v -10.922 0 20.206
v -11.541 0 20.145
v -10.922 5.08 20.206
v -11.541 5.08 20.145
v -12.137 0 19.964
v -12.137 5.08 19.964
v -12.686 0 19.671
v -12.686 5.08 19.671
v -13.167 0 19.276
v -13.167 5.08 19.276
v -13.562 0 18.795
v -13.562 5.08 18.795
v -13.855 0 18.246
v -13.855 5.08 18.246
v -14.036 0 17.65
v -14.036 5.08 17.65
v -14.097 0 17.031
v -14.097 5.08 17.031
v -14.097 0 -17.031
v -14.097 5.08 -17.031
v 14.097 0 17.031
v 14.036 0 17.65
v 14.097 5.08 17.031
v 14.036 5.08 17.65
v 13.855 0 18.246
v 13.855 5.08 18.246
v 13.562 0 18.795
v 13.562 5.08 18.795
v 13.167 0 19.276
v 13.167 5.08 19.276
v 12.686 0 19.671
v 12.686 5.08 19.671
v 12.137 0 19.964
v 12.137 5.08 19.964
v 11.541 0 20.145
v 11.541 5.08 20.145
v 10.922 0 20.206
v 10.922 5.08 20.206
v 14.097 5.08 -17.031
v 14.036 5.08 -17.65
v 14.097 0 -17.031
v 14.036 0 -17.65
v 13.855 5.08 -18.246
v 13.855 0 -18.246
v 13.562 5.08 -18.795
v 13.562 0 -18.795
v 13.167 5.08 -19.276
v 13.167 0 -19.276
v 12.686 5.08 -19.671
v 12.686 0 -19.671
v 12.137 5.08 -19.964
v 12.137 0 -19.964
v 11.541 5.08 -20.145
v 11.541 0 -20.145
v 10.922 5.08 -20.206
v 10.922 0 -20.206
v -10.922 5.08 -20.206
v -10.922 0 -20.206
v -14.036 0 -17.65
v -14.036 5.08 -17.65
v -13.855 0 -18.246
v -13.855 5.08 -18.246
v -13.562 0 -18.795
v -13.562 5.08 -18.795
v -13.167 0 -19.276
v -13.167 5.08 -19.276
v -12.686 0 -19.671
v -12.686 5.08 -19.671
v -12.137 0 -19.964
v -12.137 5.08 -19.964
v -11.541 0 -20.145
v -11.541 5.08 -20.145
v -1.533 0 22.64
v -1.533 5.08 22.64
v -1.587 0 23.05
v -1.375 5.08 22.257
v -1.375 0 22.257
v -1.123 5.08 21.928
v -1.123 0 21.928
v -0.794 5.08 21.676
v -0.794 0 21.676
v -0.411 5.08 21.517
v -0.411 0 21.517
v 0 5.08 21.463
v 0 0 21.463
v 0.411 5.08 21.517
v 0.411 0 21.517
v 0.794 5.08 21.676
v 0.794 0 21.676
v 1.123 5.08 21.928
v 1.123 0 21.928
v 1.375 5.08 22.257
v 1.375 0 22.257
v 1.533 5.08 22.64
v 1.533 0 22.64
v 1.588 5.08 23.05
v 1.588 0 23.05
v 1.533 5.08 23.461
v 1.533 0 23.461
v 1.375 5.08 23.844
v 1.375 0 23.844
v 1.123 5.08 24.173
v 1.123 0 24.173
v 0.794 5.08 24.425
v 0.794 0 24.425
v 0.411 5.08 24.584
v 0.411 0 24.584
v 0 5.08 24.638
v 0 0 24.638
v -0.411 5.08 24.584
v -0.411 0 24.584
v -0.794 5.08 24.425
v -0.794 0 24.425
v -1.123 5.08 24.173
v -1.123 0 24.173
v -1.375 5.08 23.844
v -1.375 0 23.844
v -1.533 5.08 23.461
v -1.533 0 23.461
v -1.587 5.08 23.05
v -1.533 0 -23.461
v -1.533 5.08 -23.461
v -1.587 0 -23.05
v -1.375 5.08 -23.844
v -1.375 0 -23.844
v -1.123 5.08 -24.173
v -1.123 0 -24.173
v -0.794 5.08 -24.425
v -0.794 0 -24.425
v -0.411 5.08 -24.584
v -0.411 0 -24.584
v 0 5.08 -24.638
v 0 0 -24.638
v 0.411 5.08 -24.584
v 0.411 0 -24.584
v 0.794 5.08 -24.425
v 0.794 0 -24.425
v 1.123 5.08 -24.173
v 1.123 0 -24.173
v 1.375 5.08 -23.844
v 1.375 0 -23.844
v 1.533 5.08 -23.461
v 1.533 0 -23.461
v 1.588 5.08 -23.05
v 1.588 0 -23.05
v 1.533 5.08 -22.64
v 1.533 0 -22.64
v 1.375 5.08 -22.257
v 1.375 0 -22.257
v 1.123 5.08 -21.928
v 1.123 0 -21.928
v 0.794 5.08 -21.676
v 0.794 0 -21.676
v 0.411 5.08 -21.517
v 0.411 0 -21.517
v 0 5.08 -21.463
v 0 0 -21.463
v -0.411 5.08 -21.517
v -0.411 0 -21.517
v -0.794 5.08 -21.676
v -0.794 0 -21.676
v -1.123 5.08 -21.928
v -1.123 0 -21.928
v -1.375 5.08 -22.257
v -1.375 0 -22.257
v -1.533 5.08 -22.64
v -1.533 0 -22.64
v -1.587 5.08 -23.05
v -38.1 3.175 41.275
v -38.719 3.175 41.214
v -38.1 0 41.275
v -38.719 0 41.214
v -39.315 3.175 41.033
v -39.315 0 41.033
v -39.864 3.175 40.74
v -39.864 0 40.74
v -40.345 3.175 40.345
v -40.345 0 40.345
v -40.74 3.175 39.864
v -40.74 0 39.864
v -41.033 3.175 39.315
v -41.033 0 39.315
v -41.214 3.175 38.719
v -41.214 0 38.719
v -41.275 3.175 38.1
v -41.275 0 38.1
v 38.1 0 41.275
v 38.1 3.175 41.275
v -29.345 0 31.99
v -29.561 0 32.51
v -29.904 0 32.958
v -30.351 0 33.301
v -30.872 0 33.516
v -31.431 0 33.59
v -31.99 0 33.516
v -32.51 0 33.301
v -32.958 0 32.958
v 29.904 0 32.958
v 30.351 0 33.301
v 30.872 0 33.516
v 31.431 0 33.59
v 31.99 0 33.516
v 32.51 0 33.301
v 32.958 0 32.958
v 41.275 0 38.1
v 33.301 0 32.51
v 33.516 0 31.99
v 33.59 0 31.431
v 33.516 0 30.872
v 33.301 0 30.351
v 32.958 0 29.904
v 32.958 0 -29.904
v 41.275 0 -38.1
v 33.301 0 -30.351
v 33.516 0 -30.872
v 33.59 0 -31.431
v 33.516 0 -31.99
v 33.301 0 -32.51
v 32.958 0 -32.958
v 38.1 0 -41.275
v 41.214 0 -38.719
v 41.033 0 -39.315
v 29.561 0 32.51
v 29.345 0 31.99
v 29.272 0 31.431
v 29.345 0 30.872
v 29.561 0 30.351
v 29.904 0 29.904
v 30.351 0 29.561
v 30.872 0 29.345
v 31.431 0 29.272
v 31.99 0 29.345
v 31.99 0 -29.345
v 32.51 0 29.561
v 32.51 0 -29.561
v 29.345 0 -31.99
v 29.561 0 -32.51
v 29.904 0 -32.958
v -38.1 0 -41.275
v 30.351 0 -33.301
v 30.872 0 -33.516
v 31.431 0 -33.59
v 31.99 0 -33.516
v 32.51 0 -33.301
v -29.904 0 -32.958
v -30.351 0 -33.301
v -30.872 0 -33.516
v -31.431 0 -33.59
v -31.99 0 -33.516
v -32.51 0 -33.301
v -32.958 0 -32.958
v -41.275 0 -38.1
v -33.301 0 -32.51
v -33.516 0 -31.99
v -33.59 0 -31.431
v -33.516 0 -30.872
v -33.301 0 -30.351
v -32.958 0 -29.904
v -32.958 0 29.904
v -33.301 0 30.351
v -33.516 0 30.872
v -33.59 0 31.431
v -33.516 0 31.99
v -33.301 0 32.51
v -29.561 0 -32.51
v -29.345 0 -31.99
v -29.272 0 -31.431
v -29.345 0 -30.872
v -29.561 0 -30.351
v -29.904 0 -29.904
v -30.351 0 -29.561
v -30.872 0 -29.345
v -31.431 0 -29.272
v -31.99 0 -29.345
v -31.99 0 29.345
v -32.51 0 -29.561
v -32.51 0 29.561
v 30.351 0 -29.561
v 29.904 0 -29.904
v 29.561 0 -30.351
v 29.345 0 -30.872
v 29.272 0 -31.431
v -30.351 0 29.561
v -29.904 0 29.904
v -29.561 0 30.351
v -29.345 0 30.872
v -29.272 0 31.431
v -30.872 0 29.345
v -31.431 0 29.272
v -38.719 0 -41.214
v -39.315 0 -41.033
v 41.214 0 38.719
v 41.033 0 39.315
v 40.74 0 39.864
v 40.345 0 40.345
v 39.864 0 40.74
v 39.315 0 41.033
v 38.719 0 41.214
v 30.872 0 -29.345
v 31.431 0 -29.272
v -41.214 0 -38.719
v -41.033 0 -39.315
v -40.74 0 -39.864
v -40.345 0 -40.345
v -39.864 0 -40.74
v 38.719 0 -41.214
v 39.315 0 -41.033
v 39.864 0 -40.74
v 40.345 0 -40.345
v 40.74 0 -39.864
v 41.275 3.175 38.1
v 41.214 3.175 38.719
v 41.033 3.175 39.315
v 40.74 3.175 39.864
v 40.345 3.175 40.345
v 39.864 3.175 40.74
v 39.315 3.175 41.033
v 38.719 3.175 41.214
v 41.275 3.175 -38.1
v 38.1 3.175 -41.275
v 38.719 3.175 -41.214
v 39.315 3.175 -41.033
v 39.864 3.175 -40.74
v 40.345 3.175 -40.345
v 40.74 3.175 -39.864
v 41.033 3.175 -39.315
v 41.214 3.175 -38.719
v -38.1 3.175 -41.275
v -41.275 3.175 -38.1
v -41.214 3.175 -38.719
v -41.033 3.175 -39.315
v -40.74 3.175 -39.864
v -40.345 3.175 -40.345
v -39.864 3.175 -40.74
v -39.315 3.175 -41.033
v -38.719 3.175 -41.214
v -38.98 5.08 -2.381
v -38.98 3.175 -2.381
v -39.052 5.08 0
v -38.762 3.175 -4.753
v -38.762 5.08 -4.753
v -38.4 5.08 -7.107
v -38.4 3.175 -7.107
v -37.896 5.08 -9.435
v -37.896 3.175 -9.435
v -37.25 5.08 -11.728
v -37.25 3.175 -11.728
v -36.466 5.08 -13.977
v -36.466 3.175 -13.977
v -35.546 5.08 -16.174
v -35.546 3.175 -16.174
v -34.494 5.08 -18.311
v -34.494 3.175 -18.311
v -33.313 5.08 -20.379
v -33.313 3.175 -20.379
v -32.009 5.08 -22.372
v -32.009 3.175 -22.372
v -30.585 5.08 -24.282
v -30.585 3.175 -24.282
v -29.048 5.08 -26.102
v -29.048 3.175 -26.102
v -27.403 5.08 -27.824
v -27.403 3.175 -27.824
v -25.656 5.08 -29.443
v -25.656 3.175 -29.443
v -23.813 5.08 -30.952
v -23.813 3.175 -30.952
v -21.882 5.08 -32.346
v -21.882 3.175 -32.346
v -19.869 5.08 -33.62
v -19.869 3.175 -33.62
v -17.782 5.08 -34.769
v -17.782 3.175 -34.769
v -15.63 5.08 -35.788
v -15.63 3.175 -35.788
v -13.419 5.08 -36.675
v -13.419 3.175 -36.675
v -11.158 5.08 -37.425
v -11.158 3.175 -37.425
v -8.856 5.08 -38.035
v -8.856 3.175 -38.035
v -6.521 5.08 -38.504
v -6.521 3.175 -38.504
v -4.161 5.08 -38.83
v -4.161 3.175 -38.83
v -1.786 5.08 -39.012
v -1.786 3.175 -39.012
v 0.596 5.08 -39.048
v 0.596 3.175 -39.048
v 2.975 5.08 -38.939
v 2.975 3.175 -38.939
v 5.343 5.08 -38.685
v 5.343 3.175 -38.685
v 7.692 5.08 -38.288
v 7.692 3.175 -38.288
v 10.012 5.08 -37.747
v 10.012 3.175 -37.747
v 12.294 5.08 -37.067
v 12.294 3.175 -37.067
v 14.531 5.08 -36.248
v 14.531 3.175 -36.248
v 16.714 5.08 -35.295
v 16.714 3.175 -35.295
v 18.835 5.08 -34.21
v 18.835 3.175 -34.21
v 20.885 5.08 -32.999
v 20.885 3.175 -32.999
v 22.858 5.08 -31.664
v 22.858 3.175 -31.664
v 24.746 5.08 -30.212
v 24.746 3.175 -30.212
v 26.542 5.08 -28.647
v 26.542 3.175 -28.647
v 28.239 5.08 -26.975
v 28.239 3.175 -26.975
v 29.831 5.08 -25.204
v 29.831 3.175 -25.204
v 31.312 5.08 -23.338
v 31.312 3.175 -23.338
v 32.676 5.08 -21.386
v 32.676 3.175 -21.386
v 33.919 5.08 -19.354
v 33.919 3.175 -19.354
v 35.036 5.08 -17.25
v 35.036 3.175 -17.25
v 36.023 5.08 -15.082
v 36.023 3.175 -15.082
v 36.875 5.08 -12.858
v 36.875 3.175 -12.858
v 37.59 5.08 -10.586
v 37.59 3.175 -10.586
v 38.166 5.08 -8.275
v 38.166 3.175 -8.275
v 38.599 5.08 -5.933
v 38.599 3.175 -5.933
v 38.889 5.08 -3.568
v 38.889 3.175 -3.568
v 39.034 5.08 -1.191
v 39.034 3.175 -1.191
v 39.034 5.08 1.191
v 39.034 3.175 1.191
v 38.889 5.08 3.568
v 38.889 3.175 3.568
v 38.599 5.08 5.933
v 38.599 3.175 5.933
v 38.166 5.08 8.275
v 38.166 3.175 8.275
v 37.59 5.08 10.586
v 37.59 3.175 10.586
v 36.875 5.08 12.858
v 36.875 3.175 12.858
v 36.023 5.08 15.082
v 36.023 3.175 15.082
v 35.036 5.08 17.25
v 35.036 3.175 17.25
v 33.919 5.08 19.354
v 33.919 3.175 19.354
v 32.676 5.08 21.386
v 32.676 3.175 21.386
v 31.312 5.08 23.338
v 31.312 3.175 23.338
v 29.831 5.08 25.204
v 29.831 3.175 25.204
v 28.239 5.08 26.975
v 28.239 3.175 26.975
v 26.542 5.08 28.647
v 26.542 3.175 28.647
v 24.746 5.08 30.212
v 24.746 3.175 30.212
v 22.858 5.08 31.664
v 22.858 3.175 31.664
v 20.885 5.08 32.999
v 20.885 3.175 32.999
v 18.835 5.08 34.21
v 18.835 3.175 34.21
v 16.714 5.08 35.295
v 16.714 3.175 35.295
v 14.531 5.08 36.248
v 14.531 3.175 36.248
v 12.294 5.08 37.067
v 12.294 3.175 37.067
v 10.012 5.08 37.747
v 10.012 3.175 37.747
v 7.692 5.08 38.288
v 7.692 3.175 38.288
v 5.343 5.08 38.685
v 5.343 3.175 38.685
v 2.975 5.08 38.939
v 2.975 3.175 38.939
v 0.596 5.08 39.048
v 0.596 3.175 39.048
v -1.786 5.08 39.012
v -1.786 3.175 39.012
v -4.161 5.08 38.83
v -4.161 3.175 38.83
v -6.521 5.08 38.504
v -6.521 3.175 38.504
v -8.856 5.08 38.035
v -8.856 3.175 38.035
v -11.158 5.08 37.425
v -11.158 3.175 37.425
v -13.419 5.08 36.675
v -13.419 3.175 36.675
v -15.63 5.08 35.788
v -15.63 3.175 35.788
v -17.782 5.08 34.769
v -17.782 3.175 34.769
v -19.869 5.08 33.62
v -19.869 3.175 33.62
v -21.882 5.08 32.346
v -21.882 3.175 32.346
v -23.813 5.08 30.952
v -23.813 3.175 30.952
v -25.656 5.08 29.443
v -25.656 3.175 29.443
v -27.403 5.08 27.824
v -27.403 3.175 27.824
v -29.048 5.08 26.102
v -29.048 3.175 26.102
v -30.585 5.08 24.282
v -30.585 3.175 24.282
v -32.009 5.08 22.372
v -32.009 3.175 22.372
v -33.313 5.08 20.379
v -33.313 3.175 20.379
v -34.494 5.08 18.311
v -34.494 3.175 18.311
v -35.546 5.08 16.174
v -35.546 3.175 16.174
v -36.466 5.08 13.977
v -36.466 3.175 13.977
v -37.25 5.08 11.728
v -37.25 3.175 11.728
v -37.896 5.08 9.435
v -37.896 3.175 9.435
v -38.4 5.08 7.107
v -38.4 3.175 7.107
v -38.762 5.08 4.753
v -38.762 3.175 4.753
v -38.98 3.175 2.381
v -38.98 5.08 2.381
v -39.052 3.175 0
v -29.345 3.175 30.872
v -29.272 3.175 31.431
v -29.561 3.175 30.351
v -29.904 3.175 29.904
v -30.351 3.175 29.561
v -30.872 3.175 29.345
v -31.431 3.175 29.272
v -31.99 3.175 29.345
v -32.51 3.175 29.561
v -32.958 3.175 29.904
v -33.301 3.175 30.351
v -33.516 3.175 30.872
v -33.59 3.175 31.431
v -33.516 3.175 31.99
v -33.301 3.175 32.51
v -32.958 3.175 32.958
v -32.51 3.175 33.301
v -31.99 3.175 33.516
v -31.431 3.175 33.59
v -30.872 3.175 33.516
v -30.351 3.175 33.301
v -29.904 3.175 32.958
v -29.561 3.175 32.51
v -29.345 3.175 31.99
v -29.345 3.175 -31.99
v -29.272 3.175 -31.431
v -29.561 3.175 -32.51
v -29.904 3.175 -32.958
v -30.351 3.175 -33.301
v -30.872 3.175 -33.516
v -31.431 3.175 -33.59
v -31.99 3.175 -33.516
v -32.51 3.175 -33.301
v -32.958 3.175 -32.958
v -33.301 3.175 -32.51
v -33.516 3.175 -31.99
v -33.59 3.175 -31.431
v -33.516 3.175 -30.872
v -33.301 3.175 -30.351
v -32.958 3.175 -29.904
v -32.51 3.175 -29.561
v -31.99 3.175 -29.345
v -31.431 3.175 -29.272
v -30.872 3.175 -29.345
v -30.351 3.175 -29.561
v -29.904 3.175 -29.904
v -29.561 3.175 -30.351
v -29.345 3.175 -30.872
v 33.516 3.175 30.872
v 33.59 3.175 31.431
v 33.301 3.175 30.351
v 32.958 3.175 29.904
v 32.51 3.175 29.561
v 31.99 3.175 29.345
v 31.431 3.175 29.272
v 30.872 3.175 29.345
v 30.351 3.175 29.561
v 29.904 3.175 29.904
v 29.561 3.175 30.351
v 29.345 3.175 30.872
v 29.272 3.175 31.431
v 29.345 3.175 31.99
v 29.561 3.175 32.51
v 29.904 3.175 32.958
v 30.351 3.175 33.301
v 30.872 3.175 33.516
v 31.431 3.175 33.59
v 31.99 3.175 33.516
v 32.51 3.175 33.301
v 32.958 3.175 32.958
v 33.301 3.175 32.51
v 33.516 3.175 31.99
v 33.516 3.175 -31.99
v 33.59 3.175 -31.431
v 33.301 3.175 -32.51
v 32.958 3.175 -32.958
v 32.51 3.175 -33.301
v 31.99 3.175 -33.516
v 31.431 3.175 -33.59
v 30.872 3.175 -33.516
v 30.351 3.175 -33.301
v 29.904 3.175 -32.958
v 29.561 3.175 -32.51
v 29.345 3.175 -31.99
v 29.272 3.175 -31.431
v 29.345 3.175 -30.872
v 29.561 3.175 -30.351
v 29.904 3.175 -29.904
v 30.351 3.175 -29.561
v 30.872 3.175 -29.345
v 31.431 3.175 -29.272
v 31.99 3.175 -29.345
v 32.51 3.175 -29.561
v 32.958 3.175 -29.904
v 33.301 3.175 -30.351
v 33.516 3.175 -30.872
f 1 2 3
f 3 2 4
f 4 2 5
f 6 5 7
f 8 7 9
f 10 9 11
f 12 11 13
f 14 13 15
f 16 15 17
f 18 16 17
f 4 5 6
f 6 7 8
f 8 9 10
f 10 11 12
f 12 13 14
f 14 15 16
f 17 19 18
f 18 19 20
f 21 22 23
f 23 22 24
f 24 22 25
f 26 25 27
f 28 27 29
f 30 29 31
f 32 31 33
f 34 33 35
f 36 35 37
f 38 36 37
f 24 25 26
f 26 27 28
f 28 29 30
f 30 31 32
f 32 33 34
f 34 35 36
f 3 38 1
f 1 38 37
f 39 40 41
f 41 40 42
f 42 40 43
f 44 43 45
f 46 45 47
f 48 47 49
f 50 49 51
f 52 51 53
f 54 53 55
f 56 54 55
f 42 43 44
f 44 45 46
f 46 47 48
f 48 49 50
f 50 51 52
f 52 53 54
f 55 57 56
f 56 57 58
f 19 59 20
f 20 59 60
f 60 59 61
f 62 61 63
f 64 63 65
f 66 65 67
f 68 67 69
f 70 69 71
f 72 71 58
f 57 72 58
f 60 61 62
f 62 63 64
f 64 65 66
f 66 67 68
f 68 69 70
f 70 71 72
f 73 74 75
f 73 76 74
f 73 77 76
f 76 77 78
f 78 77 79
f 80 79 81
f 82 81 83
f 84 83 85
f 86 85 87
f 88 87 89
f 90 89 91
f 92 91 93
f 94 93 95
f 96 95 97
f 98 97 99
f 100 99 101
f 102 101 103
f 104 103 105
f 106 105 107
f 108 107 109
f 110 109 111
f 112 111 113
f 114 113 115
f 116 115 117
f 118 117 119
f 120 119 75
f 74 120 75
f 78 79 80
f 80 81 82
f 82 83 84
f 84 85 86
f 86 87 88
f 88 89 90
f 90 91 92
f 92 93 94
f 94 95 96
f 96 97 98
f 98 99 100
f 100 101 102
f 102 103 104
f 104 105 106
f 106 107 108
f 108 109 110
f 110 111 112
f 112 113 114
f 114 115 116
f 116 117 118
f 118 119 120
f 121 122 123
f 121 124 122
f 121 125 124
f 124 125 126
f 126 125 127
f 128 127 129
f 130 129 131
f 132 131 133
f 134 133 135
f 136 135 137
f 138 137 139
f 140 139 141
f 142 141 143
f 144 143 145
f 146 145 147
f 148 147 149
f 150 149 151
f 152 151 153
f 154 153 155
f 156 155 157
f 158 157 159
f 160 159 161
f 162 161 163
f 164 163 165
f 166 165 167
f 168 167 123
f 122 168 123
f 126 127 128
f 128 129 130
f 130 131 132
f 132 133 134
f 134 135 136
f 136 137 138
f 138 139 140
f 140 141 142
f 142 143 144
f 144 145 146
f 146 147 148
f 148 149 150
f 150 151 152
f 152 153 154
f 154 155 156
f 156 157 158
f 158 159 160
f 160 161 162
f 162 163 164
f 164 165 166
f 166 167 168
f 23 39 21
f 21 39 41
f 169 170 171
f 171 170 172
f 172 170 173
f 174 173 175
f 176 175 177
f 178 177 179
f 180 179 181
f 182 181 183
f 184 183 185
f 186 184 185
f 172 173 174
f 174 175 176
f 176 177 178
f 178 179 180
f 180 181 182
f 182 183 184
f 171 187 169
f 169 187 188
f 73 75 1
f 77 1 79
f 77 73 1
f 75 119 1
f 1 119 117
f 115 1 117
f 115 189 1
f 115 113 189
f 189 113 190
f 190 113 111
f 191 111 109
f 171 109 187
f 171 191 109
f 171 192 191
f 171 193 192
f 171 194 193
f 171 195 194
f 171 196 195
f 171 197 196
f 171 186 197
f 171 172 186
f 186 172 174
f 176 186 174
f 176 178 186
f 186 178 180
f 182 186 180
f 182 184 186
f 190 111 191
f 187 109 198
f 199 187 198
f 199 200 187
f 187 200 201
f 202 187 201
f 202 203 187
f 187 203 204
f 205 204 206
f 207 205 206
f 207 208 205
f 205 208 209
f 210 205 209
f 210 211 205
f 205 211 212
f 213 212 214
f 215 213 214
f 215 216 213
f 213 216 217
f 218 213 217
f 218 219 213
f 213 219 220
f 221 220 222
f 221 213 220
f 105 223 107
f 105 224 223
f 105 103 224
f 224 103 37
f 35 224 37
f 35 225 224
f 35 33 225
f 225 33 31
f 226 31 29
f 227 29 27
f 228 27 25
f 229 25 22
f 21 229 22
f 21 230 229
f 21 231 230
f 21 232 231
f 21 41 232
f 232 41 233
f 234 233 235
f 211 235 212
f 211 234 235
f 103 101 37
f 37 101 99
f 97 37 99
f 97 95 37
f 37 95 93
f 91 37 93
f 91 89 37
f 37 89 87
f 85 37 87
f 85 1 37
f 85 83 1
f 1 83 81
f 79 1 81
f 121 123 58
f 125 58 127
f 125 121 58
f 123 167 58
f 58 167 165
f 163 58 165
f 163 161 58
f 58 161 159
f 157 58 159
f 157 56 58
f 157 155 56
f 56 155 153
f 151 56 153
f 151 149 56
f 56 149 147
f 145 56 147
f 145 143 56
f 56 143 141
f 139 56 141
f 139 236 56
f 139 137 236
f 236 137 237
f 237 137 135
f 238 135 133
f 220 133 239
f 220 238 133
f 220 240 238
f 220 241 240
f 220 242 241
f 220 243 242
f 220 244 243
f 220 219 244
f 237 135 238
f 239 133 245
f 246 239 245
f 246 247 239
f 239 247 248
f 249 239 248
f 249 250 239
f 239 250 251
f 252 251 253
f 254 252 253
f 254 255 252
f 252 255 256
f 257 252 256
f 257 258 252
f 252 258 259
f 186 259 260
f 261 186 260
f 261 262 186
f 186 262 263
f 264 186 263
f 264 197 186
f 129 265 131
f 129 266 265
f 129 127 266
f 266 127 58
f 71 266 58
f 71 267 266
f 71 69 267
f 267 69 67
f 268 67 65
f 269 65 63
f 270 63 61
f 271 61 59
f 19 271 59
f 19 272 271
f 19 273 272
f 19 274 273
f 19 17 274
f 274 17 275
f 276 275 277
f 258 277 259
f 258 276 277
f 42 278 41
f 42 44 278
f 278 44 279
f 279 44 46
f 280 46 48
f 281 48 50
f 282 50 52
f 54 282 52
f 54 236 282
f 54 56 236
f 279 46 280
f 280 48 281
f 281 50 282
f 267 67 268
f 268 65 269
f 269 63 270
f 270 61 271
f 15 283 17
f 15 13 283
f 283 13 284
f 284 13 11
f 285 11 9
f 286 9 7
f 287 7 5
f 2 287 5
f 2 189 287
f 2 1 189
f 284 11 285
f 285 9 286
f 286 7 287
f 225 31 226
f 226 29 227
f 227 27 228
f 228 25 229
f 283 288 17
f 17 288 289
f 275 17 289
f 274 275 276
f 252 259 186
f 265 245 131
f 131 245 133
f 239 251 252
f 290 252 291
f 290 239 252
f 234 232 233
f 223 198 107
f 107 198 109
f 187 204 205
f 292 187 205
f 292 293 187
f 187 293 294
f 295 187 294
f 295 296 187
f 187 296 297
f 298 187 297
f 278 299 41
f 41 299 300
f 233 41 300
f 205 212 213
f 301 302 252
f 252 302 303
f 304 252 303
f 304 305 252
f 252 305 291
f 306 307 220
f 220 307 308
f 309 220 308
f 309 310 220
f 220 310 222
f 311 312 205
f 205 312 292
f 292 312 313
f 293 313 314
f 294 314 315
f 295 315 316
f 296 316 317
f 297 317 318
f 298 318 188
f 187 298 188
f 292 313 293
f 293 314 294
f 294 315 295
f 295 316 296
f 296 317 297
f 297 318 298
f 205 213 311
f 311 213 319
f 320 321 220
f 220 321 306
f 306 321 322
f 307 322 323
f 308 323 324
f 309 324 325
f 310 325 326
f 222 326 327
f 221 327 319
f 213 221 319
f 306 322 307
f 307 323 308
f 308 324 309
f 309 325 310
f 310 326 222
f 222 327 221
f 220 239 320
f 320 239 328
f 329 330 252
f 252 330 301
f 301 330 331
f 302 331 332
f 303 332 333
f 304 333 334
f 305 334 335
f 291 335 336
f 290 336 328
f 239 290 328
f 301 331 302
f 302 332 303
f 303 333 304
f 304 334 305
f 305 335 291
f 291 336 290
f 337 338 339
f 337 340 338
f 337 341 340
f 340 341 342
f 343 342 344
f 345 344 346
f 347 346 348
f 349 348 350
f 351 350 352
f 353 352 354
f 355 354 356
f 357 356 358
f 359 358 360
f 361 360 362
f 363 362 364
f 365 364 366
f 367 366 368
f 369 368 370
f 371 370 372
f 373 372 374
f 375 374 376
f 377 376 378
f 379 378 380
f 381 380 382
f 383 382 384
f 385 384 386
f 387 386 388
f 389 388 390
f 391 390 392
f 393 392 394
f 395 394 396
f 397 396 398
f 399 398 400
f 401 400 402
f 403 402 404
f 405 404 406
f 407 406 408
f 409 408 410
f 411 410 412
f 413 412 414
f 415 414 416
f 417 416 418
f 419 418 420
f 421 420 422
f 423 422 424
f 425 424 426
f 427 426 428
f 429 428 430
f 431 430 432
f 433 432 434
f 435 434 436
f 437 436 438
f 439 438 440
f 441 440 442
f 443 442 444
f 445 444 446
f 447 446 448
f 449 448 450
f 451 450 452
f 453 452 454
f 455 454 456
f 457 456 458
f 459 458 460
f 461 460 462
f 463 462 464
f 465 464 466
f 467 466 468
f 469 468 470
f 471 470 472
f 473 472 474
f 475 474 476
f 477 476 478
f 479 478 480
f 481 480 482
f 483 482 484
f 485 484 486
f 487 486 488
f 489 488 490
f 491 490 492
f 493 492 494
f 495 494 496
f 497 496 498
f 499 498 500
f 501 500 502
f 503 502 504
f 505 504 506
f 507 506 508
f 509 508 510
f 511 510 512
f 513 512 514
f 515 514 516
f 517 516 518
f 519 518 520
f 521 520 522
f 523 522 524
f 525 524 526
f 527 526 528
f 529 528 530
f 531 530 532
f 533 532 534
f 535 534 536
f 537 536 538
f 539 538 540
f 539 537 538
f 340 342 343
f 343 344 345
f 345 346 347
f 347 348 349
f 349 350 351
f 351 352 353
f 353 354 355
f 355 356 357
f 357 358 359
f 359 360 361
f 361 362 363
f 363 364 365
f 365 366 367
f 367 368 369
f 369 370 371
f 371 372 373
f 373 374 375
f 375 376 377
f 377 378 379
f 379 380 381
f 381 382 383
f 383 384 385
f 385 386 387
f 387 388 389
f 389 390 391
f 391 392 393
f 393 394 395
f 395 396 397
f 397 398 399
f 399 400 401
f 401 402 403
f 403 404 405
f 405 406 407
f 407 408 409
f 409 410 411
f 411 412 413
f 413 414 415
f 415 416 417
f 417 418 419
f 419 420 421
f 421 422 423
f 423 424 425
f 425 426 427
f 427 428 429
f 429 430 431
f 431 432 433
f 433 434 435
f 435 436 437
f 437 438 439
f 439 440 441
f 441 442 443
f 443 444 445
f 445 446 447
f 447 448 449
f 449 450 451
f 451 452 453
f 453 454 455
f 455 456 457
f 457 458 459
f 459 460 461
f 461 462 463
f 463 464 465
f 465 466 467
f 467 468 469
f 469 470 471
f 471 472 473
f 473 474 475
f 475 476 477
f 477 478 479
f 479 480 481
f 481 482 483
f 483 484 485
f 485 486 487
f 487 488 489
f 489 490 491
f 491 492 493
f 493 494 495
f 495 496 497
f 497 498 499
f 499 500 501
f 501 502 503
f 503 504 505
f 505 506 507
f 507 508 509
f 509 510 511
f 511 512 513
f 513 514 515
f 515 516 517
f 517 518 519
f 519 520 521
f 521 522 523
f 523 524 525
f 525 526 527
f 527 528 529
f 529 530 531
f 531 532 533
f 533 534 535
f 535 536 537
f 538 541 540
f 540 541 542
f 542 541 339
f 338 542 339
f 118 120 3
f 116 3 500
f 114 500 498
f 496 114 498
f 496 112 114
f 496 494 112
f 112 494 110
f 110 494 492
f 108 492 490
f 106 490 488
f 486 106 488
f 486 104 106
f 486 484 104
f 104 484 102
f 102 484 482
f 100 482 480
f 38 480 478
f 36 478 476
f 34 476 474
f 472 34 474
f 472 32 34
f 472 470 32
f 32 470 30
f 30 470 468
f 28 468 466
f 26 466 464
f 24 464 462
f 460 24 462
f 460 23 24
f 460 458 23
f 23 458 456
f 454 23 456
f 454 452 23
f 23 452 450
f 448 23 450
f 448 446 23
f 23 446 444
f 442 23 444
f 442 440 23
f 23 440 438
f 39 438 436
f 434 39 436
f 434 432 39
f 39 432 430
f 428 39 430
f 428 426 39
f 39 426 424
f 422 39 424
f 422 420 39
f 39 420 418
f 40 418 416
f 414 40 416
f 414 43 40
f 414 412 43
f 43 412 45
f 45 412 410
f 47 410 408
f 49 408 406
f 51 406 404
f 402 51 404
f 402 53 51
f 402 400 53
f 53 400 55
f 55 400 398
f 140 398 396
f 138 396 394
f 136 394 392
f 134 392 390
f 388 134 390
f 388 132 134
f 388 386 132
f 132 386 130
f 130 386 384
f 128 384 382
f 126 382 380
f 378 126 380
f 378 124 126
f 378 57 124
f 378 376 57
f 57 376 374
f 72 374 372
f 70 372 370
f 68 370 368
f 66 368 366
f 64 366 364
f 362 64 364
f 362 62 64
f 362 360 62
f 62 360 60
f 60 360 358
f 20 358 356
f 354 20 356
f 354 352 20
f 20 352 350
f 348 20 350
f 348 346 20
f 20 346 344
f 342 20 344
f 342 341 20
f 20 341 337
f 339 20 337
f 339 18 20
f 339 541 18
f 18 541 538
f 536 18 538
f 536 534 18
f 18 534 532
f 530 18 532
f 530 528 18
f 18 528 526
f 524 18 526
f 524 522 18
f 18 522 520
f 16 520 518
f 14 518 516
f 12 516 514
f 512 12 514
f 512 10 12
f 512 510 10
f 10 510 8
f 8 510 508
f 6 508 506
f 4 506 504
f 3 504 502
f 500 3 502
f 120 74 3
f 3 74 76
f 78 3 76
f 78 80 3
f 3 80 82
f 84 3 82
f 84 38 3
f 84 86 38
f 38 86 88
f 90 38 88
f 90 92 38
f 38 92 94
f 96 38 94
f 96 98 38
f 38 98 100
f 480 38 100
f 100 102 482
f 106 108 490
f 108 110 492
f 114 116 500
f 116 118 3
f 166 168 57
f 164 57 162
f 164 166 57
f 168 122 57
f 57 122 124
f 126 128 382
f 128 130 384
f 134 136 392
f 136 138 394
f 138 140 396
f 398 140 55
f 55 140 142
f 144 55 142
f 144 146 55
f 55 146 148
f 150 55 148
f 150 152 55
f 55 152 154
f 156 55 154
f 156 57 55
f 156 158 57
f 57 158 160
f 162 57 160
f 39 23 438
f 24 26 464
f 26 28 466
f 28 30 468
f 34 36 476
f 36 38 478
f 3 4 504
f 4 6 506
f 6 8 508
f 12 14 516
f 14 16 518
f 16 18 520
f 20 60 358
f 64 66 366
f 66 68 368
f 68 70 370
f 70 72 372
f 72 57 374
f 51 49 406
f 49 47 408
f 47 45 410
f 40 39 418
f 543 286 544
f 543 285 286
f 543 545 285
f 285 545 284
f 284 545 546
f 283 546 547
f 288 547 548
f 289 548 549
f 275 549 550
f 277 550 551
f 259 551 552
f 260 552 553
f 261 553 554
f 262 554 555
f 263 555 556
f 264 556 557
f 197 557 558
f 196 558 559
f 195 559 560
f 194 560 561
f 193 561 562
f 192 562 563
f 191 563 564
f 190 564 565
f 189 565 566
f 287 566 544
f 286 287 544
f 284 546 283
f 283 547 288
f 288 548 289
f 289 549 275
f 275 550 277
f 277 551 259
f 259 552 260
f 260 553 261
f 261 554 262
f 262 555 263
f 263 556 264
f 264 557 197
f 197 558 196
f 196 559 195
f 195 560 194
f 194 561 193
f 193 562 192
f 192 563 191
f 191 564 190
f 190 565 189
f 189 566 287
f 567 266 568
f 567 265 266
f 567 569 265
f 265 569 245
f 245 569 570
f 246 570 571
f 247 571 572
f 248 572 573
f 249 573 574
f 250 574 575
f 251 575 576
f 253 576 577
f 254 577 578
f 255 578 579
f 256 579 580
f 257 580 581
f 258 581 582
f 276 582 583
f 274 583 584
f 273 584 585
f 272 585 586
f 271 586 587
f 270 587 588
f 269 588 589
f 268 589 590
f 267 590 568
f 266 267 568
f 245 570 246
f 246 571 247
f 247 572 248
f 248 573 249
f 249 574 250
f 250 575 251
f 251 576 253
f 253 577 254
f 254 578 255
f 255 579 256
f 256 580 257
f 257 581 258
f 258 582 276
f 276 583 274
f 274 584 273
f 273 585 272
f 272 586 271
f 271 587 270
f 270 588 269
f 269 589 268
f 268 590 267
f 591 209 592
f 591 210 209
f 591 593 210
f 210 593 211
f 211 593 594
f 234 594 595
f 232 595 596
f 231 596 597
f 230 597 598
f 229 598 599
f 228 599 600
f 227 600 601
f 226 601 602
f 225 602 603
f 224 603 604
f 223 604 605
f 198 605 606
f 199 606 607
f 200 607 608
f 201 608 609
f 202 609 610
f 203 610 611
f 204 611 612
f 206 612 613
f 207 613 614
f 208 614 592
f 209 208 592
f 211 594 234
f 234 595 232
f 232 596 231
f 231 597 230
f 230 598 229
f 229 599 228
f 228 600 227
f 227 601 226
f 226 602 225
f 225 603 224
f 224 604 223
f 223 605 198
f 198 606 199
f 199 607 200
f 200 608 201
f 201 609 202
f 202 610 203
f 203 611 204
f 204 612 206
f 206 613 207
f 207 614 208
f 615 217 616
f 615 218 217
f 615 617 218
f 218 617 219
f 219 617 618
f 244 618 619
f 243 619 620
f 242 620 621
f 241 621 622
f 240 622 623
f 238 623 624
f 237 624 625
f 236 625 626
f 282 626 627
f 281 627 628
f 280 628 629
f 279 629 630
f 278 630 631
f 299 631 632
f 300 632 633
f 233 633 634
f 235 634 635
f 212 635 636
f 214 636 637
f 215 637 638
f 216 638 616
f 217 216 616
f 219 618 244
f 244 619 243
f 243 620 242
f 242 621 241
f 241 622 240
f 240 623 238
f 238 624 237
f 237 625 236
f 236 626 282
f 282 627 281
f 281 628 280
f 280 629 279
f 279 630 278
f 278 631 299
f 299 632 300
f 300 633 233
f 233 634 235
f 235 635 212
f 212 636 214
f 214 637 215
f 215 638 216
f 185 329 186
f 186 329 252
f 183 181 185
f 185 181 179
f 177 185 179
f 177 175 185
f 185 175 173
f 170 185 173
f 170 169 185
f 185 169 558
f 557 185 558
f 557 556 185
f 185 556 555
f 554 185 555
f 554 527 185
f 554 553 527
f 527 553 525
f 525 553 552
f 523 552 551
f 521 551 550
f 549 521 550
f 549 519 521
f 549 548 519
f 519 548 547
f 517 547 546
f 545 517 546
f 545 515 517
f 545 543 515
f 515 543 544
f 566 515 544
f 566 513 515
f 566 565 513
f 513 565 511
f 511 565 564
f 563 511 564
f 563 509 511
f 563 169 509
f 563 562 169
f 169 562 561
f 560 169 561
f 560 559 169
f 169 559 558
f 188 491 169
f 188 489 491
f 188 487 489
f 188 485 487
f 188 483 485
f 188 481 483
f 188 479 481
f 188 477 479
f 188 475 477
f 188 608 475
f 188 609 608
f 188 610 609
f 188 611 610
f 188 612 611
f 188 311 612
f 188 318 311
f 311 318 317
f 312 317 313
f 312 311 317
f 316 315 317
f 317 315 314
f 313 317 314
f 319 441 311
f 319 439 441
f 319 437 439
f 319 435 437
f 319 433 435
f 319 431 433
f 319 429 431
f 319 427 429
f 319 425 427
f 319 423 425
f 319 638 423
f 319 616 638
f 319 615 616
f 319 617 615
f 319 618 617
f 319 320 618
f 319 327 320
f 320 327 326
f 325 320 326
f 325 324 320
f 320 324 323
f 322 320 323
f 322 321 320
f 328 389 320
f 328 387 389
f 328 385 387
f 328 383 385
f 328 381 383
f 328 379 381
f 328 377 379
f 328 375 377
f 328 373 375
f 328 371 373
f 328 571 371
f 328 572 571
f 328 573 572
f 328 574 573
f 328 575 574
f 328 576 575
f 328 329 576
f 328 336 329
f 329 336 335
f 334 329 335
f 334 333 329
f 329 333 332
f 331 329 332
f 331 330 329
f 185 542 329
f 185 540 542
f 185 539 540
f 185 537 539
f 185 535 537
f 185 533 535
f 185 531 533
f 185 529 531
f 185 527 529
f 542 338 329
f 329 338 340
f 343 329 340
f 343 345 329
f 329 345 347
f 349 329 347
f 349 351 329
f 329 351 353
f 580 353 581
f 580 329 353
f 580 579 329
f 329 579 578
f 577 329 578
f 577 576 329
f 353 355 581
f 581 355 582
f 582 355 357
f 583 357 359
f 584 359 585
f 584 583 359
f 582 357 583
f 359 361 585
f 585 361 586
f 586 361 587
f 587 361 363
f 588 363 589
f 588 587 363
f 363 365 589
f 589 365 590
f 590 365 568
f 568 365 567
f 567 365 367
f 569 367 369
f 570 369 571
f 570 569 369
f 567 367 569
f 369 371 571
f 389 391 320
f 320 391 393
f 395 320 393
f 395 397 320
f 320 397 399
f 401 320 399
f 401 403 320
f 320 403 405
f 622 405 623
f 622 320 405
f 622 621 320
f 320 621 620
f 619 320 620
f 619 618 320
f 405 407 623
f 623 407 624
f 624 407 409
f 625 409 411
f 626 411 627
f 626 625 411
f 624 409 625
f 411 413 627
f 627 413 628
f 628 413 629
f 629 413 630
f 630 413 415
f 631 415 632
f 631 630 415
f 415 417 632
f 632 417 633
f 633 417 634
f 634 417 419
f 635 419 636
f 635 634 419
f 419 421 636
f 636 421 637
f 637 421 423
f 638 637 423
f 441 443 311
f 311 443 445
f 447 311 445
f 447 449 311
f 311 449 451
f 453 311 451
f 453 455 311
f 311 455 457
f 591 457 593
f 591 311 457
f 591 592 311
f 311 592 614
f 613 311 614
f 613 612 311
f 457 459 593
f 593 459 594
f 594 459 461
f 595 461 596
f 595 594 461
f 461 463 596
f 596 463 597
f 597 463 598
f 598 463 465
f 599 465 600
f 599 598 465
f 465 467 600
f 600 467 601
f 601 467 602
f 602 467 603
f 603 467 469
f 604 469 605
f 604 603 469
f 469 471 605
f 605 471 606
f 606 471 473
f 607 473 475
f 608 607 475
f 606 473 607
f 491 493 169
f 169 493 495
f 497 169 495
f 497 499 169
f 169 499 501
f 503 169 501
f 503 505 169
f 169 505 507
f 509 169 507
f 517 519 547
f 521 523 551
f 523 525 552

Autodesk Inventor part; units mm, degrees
ref_plane "YZ Plane" through (0, 0, 0) normal (1, 0, 0) x (0, 1, 0)
ref_plane "XZ Plane" through (0, 0, 0) normal (0, 1, 0) x (-1, 0, 0)
ref_plane "XY Plane" through (0, 0, 0) normal (0, 0, 1) x (1, 0, 0)
sketch "Sketch1" plane through (0, 0, 0) normal (0, 1, 0) x (-1, 0, 0)
  line L0 (41.275, 41.275) -> (-41.275, 41.275)
  line L1 (-41.275, 41.275) -> (-41.275, -41.275)
  line L2 (-41.275, -41.275) -> (41.275, -41.275)
  line L3 (41.275, -41.275) -> (41.275, 41.275)
  circle A0 centre (0, 0) radius 44.45 construction
  circle A1 centre (0, 0) radius 39.6875
  line L4 (-41.275, 41.275) -> (41.275, -41.275) construction
  line L5 (41.275, 41.275) -> (-41.275, -41.275) construction
  circle A2 centre (31.4309, 31.4309) radius 2.159
  circle A3 centre (31.4309, -31.4309) radius 2.159
  circle A4 centre (-31.4309, 31.4309) radius 2.159
  circle A5 centre (-31.4309, -31.4309) radius 2.159
  point P0 (0, 0)
  point P1 (0, 0)
  point P2 (0, 0)
  dimension "d0" = 82.55
  dimension "d1" = 82.55
  dimension "d2" = 88.9
  dimension "d3" = 79.375
  dimension "d4" = 4.318
  dimension "d5" = 4.318
  dimension "d6" = 4.318
  dimension "d7" = 4.318
extrude "Extrusion1" add sketch "Sketch1" along normal blind 3.175 contours L3 L2 L1 L0 | A1
sketch "Sketch2" plane through (0, 3.175, 0) normal (0, 1, 0) x (1, 0, 0)
  circle A0 centre (0, 0) radius 39.0525
  circle A1 centre (0, 0) radius 39.6875 construction
  line L0 (-14.097, -20.2057) -> (14.097, -20.2057)
  line L1 (14.097, -20.2057) -> (14.097, 20.2057)
  line L2 (14.097, 20.2057) -> (-14.097, 20.2057)
  line L3 (-14.097, 20.2057) -> (-14.097, -20.2057)
  line L4 (-14.097, -20.2057) -> (14.097, 20.2057) construction
  line L5 (14.097, -20.2057) -> (-14.097, 20.2057) construction
  circle A2 centre (0, -23.0505) radius 1.5875
  line L6 (-23.2122, 0) -> (23.719, 0) construction
  circle A3 centre (0, 23.0505) radius 1.5875
  point P0 (0, 0)
  dimension "d10" = 78.105
  dimension "d17" = 79.375
  dimension "d18" = 28.194
  dimension "d19" = 40.4114
  dimension "d21" = 3.175
  dimension "d24" = 46.101
extrude "Extrusion2" add sketch "Sketch2" along normal blind 1.905 contours A0 | L3 L2 L1 L0 | A2 | A3
fillet "Fillet1" radius 3.175 4 edges at (41.275, 1.5875, 41.275) (-41.275, 1.5875, 41.275) (-41.275, 1.5875, -41.275) (41.275, 1.5875, -41.275)
extrude "Extrusion3" cut sketch "Sketch2" along normal through all both and the other way through all contours L3 L2 L1 L0 | A2 | A3
fillet "Fillet5" radius 3.175 4 edges at (14.097, 2.54, 20.2057) (-14.097, 2.54, 20.2057) (-14.097, 2.54, -20.2057) (14.097, 2.54, -20.2057)
properties part number "ka51b-instrument-mount"
